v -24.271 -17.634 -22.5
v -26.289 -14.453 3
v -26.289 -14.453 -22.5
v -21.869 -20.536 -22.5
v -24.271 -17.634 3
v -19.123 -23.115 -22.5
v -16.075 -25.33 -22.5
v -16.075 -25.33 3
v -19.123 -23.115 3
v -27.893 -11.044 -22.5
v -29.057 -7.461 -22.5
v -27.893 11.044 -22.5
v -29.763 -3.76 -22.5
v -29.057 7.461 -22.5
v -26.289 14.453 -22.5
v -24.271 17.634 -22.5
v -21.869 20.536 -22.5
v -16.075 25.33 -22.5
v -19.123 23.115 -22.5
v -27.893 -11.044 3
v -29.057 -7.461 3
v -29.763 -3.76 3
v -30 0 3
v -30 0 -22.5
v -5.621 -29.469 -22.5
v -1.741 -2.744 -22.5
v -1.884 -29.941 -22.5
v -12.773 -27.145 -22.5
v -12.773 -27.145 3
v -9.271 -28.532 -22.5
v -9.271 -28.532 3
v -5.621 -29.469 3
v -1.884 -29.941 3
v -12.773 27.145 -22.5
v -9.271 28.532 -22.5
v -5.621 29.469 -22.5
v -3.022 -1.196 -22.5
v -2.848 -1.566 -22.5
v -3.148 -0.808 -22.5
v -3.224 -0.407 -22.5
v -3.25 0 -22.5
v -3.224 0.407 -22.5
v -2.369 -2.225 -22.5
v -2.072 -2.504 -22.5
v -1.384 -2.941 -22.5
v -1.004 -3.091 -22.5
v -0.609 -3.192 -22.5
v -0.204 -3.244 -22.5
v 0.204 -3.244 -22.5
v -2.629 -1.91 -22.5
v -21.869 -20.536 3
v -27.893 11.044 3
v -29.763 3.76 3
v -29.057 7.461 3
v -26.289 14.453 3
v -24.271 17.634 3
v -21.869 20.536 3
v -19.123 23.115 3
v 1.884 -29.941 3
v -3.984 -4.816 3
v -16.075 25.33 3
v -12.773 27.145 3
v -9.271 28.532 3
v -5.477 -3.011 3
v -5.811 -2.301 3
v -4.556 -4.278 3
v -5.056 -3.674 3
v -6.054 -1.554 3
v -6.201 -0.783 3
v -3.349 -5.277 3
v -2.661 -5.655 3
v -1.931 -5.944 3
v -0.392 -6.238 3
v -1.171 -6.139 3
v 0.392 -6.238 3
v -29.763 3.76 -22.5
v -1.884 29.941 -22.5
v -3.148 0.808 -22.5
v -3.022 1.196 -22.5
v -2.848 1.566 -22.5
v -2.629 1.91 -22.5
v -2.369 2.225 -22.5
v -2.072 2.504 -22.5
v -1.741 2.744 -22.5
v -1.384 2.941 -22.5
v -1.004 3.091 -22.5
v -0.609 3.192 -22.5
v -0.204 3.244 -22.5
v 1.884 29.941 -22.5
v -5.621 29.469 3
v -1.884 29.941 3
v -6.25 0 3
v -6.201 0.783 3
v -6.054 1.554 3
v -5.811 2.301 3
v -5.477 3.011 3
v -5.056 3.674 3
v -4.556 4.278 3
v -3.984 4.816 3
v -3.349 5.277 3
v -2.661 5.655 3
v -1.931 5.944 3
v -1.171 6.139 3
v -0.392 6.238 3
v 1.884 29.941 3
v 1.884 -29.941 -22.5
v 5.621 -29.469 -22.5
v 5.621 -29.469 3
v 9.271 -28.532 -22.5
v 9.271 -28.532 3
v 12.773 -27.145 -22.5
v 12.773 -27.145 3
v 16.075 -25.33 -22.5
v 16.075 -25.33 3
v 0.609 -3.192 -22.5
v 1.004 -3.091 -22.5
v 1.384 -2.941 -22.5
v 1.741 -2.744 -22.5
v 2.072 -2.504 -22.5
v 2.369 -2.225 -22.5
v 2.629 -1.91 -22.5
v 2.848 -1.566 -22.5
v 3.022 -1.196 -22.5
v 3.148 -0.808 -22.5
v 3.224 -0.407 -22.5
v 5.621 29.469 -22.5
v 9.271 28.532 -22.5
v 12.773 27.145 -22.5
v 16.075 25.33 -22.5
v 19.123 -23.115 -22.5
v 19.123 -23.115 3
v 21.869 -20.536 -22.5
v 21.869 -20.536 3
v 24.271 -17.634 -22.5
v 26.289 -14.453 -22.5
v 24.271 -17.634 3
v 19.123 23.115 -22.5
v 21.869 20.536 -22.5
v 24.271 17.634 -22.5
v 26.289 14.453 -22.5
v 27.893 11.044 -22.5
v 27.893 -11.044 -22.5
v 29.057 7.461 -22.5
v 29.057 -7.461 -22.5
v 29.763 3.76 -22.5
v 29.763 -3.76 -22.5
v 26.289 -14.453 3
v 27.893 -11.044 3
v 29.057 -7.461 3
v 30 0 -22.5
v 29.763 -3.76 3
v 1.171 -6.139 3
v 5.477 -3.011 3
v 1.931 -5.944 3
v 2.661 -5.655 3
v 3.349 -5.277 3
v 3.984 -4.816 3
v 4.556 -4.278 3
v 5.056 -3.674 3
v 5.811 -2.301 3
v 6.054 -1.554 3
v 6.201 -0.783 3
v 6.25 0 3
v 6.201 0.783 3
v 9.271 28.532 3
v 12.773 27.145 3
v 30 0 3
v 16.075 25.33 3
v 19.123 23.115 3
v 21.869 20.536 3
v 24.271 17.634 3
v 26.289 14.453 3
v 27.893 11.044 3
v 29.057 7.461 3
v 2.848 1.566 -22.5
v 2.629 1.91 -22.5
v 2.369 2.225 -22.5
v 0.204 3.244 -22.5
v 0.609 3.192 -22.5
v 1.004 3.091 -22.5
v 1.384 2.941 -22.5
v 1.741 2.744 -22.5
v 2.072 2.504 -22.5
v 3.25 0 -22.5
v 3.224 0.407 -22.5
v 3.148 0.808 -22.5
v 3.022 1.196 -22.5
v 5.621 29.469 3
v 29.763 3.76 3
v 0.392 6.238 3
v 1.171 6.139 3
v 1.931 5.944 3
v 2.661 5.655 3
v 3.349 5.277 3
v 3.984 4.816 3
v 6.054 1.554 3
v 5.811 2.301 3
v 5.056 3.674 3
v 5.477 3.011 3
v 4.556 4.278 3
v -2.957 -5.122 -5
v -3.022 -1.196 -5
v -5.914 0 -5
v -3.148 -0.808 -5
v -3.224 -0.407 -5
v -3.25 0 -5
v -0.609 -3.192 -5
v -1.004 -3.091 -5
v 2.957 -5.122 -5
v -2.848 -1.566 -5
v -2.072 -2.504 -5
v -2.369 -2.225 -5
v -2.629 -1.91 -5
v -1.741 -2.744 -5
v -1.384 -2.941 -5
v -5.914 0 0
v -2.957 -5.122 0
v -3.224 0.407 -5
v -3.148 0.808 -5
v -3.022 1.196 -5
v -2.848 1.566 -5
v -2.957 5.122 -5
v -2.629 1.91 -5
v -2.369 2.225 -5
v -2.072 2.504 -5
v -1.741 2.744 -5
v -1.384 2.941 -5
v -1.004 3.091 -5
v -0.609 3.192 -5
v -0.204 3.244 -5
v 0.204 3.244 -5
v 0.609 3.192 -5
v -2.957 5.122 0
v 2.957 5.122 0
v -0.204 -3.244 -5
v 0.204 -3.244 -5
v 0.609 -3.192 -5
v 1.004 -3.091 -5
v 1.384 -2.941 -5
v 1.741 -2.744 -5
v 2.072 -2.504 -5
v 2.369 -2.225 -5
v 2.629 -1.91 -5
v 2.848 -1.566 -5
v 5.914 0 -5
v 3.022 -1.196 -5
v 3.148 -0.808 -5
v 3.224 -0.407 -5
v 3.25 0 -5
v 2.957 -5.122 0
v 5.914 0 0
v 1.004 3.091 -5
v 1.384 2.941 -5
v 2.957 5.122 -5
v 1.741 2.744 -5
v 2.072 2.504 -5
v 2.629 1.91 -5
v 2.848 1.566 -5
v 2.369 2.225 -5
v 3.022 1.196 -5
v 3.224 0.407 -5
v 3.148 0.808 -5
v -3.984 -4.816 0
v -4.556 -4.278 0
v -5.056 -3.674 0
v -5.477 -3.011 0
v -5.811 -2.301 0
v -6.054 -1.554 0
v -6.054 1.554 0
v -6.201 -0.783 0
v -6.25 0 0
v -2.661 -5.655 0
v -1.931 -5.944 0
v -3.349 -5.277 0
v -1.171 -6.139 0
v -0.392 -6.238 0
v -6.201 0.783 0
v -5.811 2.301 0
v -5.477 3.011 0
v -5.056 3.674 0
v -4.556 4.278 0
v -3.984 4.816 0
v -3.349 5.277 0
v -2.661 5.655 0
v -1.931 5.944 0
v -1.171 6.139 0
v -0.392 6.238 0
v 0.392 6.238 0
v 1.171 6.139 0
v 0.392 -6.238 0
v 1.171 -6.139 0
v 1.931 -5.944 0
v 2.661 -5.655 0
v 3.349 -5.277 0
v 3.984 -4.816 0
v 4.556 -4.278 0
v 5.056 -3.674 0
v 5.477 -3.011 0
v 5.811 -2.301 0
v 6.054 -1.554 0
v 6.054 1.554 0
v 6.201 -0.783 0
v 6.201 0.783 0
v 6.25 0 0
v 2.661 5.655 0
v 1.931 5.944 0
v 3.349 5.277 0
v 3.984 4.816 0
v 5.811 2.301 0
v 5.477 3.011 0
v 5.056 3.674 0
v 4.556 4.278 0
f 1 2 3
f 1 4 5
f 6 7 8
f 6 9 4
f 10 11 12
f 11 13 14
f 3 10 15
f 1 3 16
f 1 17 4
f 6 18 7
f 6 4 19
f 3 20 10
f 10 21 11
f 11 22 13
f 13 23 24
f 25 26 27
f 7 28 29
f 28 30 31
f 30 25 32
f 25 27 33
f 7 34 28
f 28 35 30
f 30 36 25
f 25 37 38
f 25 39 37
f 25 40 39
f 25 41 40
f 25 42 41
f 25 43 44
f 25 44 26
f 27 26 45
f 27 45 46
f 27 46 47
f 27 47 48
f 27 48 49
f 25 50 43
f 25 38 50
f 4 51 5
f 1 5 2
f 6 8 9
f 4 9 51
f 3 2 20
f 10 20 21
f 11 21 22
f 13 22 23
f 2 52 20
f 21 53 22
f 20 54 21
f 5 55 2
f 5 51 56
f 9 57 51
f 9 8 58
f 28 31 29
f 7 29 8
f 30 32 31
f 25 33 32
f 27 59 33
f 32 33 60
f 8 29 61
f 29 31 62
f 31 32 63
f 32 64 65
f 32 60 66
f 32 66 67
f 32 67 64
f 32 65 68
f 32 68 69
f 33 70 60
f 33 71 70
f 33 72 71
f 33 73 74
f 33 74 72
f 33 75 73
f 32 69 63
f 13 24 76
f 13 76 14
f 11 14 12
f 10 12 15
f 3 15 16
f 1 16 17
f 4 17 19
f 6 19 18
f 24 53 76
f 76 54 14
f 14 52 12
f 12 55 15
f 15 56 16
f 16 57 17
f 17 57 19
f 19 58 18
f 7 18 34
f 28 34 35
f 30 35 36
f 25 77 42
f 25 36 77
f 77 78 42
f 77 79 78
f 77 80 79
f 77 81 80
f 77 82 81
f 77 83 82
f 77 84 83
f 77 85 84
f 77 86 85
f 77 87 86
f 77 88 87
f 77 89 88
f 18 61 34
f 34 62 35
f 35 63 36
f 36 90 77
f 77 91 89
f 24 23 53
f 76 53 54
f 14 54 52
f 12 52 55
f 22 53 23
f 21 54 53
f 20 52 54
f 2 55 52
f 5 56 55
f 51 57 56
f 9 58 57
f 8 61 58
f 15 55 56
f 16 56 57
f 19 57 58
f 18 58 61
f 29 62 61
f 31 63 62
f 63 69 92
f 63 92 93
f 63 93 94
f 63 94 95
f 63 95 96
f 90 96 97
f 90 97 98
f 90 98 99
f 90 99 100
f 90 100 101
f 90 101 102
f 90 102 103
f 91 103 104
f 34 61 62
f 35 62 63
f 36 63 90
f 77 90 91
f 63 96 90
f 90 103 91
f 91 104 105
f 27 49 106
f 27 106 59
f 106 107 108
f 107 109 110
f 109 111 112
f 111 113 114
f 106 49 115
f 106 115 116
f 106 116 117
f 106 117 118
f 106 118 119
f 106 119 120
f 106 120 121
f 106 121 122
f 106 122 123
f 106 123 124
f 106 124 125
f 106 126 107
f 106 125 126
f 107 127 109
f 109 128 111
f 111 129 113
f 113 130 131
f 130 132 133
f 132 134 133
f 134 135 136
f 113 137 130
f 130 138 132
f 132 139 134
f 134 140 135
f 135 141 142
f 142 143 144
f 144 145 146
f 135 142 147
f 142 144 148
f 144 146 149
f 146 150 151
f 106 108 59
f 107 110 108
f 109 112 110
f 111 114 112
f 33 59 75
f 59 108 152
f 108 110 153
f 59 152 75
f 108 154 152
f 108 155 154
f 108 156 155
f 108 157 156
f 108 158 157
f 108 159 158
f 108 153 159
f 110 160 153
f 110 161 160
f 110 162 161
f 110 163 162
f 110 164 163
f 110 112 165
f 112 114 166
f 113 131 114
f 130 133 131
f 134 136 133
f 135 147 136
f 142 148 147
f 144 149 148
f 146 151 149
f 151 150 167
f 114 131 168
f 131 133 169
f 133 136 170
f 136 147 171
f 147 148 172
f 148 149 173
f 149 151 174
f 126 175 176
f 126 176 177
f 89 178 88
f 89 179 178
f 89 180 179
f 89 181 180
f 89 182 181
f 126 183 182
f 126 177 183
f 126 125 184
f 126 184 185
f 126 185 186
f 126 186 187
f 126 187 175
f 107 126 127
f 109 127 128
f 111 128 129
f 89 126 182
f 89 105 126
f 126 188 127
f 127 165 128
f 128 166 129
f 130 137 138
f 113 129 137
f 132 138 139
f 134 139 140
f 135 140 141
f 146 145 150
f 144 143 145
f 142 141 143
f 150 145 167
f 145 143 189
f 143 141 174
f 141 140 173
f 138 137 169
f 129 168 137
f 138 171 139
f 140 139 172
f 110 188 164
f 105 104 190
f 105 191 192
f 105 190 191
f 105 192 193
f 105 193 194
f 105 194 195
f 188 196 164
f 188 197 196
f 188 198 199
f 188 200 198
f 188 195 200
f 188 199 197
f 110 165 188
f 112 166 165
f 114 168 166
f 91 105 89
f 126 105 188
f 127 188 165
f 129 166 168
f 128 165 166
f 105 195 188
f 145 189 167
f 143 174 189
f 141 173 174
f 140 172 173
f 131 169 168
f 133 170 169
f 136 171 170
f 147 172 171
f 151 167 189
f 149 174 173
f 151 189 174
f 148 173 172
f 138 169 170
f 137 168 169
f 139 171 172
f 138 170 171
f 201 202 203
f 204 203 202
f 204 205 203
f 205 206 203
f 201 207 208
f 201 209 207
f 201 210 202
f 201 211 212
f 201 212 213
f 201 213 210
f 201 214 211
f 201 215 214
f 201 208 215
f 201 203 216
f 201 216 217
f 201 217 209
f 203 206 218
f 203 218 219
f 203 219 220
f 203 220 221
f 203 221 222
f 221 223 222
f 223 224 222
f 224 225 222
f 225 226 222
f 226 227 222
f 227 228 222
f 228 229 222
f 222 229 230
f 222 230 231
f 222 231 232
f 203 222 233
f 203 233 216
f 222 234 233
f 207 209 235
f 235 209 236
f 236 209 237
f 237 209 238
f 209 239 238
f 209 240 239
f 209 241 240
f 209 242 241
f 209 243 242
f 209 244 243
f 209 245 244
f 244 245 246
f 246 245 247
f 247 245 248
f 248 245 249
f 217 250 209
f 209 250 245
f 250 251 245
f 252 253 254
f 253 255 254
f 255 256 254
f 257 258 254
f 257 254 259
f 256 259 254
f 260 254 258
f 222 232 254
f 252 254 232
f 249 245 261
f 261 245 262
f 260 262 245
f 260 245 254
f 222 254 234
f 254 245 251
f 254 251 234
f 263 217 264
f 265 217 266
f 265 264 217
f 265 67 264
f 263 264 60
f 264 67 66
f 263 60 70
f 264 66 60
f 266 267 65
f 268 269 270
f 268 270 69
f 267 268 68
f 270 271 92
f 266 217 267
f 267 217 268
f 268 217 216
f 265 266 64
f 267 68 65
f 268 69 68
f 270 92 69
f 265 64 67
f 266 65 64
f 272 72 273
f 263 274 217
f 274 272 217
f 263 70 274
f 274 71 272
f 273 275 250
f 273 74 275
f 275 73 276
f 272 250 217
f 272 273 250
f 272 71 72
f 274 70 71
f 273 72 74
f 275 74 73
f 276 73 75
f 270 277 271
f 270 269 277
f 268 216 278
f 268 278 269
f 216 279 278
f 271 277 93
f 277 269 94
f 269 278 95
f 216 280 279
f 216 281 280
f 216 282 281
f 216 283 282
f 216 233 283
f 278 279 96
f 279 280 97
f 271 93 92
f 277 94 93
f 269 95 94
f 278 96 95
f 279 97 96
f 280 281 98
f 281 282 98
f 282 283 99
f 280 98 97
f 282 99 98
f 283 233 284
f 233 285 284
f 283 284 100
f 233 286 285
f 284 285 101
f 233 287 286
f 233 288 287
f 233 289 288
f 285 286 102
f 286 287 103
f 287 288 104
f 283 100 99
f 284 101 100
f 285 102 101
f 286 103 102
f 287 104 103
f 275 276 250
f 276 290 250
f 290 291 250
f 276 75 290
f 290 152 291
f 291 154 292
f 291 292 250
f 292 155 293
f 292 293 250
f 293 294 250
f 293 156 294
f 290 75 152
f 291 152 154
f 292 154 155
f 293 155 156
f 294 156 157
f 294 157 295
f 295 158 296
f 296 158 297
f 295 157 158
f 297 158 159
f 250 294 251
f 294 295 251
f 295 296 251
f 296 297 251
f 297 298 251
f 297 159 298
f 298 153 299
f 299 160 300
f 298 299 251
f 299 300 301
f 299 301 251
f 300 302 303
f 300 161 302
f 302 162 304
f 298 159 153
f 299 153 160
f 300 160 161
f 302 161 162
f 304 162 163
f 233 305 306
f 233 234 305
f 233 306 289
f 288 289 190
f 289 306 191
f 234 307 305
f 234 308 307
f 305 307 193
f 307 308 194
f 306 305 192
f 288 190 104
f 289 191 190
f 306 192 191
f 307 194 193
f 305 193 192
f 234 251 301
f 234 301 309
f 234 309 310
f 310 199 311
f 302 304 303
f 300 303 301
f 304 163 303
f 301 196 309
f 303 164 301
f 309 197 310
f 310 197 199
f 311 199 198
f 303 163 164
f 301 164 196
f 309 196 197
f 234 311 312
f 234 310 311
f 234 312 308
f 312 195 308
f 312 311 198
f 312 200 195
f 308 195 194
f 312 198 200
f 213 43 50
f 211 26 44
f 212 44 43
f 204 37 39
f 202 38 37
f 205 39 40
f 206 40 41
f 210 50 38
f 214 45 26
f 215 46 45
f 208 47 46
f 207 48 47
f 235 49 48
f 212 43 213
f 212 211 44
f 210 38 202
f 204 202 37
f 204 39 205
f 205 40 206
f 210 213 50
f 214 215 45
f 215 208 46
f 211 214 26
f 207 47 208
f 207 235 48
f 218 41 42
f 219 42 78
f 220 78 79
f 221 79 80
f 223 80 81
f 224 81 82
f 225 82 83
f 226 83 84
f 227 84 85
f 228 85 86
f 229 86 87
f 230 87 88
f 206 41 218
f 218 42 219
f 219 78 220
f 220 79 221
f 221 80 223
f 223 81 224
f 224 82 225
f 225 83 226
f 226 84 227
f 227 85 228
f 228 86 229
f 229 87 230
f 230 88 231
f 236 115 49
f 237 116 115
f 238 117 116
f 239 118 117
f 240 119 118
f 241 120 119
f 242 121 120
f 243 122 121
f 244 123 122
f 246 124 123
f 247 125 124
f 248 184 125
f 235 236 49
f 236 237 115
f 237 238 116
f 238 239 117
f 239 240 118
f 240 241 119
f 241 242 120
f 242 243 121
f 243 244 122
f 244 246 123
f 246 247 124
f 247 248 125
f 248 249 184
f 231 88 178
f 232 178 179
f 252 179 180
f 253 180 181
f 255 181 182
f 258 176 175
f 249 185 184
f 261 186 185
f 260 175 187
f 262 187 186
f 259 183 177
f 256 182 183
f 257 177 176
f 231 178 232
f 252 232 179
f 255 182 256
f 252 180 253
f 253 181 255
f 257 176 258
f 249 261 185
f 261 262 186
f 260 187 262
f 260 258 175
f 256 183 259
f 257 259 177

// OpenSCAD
$fn = 50;


difference() {
	union() {
		translate(v = [0, 0, -22.5000000000]) {
			cylinder(h = 25.5000000000, r = 30.0000000000);
		}
		#translate(v = [0, 0, -24.0000000000]) {
			cylinder(h = 24, r = 2.8750000000);
		}
	}
	union() {
		translate(v = [0, 0, 0]) {
			rotate(a = [0, 0, 0]) {
				difference() {
					union() {
						translate(v = [0, 0, -5]) {
							linear_extrude(height = 5) {
								polygon(points = [[5.9142500000, 0.0000000000], [2.9571250000, 5.1218907443], [-2.9571250000, 5.1218907443], [-5.9142500000, 0.0000000000], [-2.9571250000, -5.1218907443], [2.9571250000, -5.1218907443]]);
							}
						}
					}
					union();
				}
			}
		}
		#cylinder(h = 3, r = 6.2500000000);
		#translate(v = [0, 0, -100.0000000000]) {
			cylinder(h = 200, r = 3.2500000000);
		}
	}
}
